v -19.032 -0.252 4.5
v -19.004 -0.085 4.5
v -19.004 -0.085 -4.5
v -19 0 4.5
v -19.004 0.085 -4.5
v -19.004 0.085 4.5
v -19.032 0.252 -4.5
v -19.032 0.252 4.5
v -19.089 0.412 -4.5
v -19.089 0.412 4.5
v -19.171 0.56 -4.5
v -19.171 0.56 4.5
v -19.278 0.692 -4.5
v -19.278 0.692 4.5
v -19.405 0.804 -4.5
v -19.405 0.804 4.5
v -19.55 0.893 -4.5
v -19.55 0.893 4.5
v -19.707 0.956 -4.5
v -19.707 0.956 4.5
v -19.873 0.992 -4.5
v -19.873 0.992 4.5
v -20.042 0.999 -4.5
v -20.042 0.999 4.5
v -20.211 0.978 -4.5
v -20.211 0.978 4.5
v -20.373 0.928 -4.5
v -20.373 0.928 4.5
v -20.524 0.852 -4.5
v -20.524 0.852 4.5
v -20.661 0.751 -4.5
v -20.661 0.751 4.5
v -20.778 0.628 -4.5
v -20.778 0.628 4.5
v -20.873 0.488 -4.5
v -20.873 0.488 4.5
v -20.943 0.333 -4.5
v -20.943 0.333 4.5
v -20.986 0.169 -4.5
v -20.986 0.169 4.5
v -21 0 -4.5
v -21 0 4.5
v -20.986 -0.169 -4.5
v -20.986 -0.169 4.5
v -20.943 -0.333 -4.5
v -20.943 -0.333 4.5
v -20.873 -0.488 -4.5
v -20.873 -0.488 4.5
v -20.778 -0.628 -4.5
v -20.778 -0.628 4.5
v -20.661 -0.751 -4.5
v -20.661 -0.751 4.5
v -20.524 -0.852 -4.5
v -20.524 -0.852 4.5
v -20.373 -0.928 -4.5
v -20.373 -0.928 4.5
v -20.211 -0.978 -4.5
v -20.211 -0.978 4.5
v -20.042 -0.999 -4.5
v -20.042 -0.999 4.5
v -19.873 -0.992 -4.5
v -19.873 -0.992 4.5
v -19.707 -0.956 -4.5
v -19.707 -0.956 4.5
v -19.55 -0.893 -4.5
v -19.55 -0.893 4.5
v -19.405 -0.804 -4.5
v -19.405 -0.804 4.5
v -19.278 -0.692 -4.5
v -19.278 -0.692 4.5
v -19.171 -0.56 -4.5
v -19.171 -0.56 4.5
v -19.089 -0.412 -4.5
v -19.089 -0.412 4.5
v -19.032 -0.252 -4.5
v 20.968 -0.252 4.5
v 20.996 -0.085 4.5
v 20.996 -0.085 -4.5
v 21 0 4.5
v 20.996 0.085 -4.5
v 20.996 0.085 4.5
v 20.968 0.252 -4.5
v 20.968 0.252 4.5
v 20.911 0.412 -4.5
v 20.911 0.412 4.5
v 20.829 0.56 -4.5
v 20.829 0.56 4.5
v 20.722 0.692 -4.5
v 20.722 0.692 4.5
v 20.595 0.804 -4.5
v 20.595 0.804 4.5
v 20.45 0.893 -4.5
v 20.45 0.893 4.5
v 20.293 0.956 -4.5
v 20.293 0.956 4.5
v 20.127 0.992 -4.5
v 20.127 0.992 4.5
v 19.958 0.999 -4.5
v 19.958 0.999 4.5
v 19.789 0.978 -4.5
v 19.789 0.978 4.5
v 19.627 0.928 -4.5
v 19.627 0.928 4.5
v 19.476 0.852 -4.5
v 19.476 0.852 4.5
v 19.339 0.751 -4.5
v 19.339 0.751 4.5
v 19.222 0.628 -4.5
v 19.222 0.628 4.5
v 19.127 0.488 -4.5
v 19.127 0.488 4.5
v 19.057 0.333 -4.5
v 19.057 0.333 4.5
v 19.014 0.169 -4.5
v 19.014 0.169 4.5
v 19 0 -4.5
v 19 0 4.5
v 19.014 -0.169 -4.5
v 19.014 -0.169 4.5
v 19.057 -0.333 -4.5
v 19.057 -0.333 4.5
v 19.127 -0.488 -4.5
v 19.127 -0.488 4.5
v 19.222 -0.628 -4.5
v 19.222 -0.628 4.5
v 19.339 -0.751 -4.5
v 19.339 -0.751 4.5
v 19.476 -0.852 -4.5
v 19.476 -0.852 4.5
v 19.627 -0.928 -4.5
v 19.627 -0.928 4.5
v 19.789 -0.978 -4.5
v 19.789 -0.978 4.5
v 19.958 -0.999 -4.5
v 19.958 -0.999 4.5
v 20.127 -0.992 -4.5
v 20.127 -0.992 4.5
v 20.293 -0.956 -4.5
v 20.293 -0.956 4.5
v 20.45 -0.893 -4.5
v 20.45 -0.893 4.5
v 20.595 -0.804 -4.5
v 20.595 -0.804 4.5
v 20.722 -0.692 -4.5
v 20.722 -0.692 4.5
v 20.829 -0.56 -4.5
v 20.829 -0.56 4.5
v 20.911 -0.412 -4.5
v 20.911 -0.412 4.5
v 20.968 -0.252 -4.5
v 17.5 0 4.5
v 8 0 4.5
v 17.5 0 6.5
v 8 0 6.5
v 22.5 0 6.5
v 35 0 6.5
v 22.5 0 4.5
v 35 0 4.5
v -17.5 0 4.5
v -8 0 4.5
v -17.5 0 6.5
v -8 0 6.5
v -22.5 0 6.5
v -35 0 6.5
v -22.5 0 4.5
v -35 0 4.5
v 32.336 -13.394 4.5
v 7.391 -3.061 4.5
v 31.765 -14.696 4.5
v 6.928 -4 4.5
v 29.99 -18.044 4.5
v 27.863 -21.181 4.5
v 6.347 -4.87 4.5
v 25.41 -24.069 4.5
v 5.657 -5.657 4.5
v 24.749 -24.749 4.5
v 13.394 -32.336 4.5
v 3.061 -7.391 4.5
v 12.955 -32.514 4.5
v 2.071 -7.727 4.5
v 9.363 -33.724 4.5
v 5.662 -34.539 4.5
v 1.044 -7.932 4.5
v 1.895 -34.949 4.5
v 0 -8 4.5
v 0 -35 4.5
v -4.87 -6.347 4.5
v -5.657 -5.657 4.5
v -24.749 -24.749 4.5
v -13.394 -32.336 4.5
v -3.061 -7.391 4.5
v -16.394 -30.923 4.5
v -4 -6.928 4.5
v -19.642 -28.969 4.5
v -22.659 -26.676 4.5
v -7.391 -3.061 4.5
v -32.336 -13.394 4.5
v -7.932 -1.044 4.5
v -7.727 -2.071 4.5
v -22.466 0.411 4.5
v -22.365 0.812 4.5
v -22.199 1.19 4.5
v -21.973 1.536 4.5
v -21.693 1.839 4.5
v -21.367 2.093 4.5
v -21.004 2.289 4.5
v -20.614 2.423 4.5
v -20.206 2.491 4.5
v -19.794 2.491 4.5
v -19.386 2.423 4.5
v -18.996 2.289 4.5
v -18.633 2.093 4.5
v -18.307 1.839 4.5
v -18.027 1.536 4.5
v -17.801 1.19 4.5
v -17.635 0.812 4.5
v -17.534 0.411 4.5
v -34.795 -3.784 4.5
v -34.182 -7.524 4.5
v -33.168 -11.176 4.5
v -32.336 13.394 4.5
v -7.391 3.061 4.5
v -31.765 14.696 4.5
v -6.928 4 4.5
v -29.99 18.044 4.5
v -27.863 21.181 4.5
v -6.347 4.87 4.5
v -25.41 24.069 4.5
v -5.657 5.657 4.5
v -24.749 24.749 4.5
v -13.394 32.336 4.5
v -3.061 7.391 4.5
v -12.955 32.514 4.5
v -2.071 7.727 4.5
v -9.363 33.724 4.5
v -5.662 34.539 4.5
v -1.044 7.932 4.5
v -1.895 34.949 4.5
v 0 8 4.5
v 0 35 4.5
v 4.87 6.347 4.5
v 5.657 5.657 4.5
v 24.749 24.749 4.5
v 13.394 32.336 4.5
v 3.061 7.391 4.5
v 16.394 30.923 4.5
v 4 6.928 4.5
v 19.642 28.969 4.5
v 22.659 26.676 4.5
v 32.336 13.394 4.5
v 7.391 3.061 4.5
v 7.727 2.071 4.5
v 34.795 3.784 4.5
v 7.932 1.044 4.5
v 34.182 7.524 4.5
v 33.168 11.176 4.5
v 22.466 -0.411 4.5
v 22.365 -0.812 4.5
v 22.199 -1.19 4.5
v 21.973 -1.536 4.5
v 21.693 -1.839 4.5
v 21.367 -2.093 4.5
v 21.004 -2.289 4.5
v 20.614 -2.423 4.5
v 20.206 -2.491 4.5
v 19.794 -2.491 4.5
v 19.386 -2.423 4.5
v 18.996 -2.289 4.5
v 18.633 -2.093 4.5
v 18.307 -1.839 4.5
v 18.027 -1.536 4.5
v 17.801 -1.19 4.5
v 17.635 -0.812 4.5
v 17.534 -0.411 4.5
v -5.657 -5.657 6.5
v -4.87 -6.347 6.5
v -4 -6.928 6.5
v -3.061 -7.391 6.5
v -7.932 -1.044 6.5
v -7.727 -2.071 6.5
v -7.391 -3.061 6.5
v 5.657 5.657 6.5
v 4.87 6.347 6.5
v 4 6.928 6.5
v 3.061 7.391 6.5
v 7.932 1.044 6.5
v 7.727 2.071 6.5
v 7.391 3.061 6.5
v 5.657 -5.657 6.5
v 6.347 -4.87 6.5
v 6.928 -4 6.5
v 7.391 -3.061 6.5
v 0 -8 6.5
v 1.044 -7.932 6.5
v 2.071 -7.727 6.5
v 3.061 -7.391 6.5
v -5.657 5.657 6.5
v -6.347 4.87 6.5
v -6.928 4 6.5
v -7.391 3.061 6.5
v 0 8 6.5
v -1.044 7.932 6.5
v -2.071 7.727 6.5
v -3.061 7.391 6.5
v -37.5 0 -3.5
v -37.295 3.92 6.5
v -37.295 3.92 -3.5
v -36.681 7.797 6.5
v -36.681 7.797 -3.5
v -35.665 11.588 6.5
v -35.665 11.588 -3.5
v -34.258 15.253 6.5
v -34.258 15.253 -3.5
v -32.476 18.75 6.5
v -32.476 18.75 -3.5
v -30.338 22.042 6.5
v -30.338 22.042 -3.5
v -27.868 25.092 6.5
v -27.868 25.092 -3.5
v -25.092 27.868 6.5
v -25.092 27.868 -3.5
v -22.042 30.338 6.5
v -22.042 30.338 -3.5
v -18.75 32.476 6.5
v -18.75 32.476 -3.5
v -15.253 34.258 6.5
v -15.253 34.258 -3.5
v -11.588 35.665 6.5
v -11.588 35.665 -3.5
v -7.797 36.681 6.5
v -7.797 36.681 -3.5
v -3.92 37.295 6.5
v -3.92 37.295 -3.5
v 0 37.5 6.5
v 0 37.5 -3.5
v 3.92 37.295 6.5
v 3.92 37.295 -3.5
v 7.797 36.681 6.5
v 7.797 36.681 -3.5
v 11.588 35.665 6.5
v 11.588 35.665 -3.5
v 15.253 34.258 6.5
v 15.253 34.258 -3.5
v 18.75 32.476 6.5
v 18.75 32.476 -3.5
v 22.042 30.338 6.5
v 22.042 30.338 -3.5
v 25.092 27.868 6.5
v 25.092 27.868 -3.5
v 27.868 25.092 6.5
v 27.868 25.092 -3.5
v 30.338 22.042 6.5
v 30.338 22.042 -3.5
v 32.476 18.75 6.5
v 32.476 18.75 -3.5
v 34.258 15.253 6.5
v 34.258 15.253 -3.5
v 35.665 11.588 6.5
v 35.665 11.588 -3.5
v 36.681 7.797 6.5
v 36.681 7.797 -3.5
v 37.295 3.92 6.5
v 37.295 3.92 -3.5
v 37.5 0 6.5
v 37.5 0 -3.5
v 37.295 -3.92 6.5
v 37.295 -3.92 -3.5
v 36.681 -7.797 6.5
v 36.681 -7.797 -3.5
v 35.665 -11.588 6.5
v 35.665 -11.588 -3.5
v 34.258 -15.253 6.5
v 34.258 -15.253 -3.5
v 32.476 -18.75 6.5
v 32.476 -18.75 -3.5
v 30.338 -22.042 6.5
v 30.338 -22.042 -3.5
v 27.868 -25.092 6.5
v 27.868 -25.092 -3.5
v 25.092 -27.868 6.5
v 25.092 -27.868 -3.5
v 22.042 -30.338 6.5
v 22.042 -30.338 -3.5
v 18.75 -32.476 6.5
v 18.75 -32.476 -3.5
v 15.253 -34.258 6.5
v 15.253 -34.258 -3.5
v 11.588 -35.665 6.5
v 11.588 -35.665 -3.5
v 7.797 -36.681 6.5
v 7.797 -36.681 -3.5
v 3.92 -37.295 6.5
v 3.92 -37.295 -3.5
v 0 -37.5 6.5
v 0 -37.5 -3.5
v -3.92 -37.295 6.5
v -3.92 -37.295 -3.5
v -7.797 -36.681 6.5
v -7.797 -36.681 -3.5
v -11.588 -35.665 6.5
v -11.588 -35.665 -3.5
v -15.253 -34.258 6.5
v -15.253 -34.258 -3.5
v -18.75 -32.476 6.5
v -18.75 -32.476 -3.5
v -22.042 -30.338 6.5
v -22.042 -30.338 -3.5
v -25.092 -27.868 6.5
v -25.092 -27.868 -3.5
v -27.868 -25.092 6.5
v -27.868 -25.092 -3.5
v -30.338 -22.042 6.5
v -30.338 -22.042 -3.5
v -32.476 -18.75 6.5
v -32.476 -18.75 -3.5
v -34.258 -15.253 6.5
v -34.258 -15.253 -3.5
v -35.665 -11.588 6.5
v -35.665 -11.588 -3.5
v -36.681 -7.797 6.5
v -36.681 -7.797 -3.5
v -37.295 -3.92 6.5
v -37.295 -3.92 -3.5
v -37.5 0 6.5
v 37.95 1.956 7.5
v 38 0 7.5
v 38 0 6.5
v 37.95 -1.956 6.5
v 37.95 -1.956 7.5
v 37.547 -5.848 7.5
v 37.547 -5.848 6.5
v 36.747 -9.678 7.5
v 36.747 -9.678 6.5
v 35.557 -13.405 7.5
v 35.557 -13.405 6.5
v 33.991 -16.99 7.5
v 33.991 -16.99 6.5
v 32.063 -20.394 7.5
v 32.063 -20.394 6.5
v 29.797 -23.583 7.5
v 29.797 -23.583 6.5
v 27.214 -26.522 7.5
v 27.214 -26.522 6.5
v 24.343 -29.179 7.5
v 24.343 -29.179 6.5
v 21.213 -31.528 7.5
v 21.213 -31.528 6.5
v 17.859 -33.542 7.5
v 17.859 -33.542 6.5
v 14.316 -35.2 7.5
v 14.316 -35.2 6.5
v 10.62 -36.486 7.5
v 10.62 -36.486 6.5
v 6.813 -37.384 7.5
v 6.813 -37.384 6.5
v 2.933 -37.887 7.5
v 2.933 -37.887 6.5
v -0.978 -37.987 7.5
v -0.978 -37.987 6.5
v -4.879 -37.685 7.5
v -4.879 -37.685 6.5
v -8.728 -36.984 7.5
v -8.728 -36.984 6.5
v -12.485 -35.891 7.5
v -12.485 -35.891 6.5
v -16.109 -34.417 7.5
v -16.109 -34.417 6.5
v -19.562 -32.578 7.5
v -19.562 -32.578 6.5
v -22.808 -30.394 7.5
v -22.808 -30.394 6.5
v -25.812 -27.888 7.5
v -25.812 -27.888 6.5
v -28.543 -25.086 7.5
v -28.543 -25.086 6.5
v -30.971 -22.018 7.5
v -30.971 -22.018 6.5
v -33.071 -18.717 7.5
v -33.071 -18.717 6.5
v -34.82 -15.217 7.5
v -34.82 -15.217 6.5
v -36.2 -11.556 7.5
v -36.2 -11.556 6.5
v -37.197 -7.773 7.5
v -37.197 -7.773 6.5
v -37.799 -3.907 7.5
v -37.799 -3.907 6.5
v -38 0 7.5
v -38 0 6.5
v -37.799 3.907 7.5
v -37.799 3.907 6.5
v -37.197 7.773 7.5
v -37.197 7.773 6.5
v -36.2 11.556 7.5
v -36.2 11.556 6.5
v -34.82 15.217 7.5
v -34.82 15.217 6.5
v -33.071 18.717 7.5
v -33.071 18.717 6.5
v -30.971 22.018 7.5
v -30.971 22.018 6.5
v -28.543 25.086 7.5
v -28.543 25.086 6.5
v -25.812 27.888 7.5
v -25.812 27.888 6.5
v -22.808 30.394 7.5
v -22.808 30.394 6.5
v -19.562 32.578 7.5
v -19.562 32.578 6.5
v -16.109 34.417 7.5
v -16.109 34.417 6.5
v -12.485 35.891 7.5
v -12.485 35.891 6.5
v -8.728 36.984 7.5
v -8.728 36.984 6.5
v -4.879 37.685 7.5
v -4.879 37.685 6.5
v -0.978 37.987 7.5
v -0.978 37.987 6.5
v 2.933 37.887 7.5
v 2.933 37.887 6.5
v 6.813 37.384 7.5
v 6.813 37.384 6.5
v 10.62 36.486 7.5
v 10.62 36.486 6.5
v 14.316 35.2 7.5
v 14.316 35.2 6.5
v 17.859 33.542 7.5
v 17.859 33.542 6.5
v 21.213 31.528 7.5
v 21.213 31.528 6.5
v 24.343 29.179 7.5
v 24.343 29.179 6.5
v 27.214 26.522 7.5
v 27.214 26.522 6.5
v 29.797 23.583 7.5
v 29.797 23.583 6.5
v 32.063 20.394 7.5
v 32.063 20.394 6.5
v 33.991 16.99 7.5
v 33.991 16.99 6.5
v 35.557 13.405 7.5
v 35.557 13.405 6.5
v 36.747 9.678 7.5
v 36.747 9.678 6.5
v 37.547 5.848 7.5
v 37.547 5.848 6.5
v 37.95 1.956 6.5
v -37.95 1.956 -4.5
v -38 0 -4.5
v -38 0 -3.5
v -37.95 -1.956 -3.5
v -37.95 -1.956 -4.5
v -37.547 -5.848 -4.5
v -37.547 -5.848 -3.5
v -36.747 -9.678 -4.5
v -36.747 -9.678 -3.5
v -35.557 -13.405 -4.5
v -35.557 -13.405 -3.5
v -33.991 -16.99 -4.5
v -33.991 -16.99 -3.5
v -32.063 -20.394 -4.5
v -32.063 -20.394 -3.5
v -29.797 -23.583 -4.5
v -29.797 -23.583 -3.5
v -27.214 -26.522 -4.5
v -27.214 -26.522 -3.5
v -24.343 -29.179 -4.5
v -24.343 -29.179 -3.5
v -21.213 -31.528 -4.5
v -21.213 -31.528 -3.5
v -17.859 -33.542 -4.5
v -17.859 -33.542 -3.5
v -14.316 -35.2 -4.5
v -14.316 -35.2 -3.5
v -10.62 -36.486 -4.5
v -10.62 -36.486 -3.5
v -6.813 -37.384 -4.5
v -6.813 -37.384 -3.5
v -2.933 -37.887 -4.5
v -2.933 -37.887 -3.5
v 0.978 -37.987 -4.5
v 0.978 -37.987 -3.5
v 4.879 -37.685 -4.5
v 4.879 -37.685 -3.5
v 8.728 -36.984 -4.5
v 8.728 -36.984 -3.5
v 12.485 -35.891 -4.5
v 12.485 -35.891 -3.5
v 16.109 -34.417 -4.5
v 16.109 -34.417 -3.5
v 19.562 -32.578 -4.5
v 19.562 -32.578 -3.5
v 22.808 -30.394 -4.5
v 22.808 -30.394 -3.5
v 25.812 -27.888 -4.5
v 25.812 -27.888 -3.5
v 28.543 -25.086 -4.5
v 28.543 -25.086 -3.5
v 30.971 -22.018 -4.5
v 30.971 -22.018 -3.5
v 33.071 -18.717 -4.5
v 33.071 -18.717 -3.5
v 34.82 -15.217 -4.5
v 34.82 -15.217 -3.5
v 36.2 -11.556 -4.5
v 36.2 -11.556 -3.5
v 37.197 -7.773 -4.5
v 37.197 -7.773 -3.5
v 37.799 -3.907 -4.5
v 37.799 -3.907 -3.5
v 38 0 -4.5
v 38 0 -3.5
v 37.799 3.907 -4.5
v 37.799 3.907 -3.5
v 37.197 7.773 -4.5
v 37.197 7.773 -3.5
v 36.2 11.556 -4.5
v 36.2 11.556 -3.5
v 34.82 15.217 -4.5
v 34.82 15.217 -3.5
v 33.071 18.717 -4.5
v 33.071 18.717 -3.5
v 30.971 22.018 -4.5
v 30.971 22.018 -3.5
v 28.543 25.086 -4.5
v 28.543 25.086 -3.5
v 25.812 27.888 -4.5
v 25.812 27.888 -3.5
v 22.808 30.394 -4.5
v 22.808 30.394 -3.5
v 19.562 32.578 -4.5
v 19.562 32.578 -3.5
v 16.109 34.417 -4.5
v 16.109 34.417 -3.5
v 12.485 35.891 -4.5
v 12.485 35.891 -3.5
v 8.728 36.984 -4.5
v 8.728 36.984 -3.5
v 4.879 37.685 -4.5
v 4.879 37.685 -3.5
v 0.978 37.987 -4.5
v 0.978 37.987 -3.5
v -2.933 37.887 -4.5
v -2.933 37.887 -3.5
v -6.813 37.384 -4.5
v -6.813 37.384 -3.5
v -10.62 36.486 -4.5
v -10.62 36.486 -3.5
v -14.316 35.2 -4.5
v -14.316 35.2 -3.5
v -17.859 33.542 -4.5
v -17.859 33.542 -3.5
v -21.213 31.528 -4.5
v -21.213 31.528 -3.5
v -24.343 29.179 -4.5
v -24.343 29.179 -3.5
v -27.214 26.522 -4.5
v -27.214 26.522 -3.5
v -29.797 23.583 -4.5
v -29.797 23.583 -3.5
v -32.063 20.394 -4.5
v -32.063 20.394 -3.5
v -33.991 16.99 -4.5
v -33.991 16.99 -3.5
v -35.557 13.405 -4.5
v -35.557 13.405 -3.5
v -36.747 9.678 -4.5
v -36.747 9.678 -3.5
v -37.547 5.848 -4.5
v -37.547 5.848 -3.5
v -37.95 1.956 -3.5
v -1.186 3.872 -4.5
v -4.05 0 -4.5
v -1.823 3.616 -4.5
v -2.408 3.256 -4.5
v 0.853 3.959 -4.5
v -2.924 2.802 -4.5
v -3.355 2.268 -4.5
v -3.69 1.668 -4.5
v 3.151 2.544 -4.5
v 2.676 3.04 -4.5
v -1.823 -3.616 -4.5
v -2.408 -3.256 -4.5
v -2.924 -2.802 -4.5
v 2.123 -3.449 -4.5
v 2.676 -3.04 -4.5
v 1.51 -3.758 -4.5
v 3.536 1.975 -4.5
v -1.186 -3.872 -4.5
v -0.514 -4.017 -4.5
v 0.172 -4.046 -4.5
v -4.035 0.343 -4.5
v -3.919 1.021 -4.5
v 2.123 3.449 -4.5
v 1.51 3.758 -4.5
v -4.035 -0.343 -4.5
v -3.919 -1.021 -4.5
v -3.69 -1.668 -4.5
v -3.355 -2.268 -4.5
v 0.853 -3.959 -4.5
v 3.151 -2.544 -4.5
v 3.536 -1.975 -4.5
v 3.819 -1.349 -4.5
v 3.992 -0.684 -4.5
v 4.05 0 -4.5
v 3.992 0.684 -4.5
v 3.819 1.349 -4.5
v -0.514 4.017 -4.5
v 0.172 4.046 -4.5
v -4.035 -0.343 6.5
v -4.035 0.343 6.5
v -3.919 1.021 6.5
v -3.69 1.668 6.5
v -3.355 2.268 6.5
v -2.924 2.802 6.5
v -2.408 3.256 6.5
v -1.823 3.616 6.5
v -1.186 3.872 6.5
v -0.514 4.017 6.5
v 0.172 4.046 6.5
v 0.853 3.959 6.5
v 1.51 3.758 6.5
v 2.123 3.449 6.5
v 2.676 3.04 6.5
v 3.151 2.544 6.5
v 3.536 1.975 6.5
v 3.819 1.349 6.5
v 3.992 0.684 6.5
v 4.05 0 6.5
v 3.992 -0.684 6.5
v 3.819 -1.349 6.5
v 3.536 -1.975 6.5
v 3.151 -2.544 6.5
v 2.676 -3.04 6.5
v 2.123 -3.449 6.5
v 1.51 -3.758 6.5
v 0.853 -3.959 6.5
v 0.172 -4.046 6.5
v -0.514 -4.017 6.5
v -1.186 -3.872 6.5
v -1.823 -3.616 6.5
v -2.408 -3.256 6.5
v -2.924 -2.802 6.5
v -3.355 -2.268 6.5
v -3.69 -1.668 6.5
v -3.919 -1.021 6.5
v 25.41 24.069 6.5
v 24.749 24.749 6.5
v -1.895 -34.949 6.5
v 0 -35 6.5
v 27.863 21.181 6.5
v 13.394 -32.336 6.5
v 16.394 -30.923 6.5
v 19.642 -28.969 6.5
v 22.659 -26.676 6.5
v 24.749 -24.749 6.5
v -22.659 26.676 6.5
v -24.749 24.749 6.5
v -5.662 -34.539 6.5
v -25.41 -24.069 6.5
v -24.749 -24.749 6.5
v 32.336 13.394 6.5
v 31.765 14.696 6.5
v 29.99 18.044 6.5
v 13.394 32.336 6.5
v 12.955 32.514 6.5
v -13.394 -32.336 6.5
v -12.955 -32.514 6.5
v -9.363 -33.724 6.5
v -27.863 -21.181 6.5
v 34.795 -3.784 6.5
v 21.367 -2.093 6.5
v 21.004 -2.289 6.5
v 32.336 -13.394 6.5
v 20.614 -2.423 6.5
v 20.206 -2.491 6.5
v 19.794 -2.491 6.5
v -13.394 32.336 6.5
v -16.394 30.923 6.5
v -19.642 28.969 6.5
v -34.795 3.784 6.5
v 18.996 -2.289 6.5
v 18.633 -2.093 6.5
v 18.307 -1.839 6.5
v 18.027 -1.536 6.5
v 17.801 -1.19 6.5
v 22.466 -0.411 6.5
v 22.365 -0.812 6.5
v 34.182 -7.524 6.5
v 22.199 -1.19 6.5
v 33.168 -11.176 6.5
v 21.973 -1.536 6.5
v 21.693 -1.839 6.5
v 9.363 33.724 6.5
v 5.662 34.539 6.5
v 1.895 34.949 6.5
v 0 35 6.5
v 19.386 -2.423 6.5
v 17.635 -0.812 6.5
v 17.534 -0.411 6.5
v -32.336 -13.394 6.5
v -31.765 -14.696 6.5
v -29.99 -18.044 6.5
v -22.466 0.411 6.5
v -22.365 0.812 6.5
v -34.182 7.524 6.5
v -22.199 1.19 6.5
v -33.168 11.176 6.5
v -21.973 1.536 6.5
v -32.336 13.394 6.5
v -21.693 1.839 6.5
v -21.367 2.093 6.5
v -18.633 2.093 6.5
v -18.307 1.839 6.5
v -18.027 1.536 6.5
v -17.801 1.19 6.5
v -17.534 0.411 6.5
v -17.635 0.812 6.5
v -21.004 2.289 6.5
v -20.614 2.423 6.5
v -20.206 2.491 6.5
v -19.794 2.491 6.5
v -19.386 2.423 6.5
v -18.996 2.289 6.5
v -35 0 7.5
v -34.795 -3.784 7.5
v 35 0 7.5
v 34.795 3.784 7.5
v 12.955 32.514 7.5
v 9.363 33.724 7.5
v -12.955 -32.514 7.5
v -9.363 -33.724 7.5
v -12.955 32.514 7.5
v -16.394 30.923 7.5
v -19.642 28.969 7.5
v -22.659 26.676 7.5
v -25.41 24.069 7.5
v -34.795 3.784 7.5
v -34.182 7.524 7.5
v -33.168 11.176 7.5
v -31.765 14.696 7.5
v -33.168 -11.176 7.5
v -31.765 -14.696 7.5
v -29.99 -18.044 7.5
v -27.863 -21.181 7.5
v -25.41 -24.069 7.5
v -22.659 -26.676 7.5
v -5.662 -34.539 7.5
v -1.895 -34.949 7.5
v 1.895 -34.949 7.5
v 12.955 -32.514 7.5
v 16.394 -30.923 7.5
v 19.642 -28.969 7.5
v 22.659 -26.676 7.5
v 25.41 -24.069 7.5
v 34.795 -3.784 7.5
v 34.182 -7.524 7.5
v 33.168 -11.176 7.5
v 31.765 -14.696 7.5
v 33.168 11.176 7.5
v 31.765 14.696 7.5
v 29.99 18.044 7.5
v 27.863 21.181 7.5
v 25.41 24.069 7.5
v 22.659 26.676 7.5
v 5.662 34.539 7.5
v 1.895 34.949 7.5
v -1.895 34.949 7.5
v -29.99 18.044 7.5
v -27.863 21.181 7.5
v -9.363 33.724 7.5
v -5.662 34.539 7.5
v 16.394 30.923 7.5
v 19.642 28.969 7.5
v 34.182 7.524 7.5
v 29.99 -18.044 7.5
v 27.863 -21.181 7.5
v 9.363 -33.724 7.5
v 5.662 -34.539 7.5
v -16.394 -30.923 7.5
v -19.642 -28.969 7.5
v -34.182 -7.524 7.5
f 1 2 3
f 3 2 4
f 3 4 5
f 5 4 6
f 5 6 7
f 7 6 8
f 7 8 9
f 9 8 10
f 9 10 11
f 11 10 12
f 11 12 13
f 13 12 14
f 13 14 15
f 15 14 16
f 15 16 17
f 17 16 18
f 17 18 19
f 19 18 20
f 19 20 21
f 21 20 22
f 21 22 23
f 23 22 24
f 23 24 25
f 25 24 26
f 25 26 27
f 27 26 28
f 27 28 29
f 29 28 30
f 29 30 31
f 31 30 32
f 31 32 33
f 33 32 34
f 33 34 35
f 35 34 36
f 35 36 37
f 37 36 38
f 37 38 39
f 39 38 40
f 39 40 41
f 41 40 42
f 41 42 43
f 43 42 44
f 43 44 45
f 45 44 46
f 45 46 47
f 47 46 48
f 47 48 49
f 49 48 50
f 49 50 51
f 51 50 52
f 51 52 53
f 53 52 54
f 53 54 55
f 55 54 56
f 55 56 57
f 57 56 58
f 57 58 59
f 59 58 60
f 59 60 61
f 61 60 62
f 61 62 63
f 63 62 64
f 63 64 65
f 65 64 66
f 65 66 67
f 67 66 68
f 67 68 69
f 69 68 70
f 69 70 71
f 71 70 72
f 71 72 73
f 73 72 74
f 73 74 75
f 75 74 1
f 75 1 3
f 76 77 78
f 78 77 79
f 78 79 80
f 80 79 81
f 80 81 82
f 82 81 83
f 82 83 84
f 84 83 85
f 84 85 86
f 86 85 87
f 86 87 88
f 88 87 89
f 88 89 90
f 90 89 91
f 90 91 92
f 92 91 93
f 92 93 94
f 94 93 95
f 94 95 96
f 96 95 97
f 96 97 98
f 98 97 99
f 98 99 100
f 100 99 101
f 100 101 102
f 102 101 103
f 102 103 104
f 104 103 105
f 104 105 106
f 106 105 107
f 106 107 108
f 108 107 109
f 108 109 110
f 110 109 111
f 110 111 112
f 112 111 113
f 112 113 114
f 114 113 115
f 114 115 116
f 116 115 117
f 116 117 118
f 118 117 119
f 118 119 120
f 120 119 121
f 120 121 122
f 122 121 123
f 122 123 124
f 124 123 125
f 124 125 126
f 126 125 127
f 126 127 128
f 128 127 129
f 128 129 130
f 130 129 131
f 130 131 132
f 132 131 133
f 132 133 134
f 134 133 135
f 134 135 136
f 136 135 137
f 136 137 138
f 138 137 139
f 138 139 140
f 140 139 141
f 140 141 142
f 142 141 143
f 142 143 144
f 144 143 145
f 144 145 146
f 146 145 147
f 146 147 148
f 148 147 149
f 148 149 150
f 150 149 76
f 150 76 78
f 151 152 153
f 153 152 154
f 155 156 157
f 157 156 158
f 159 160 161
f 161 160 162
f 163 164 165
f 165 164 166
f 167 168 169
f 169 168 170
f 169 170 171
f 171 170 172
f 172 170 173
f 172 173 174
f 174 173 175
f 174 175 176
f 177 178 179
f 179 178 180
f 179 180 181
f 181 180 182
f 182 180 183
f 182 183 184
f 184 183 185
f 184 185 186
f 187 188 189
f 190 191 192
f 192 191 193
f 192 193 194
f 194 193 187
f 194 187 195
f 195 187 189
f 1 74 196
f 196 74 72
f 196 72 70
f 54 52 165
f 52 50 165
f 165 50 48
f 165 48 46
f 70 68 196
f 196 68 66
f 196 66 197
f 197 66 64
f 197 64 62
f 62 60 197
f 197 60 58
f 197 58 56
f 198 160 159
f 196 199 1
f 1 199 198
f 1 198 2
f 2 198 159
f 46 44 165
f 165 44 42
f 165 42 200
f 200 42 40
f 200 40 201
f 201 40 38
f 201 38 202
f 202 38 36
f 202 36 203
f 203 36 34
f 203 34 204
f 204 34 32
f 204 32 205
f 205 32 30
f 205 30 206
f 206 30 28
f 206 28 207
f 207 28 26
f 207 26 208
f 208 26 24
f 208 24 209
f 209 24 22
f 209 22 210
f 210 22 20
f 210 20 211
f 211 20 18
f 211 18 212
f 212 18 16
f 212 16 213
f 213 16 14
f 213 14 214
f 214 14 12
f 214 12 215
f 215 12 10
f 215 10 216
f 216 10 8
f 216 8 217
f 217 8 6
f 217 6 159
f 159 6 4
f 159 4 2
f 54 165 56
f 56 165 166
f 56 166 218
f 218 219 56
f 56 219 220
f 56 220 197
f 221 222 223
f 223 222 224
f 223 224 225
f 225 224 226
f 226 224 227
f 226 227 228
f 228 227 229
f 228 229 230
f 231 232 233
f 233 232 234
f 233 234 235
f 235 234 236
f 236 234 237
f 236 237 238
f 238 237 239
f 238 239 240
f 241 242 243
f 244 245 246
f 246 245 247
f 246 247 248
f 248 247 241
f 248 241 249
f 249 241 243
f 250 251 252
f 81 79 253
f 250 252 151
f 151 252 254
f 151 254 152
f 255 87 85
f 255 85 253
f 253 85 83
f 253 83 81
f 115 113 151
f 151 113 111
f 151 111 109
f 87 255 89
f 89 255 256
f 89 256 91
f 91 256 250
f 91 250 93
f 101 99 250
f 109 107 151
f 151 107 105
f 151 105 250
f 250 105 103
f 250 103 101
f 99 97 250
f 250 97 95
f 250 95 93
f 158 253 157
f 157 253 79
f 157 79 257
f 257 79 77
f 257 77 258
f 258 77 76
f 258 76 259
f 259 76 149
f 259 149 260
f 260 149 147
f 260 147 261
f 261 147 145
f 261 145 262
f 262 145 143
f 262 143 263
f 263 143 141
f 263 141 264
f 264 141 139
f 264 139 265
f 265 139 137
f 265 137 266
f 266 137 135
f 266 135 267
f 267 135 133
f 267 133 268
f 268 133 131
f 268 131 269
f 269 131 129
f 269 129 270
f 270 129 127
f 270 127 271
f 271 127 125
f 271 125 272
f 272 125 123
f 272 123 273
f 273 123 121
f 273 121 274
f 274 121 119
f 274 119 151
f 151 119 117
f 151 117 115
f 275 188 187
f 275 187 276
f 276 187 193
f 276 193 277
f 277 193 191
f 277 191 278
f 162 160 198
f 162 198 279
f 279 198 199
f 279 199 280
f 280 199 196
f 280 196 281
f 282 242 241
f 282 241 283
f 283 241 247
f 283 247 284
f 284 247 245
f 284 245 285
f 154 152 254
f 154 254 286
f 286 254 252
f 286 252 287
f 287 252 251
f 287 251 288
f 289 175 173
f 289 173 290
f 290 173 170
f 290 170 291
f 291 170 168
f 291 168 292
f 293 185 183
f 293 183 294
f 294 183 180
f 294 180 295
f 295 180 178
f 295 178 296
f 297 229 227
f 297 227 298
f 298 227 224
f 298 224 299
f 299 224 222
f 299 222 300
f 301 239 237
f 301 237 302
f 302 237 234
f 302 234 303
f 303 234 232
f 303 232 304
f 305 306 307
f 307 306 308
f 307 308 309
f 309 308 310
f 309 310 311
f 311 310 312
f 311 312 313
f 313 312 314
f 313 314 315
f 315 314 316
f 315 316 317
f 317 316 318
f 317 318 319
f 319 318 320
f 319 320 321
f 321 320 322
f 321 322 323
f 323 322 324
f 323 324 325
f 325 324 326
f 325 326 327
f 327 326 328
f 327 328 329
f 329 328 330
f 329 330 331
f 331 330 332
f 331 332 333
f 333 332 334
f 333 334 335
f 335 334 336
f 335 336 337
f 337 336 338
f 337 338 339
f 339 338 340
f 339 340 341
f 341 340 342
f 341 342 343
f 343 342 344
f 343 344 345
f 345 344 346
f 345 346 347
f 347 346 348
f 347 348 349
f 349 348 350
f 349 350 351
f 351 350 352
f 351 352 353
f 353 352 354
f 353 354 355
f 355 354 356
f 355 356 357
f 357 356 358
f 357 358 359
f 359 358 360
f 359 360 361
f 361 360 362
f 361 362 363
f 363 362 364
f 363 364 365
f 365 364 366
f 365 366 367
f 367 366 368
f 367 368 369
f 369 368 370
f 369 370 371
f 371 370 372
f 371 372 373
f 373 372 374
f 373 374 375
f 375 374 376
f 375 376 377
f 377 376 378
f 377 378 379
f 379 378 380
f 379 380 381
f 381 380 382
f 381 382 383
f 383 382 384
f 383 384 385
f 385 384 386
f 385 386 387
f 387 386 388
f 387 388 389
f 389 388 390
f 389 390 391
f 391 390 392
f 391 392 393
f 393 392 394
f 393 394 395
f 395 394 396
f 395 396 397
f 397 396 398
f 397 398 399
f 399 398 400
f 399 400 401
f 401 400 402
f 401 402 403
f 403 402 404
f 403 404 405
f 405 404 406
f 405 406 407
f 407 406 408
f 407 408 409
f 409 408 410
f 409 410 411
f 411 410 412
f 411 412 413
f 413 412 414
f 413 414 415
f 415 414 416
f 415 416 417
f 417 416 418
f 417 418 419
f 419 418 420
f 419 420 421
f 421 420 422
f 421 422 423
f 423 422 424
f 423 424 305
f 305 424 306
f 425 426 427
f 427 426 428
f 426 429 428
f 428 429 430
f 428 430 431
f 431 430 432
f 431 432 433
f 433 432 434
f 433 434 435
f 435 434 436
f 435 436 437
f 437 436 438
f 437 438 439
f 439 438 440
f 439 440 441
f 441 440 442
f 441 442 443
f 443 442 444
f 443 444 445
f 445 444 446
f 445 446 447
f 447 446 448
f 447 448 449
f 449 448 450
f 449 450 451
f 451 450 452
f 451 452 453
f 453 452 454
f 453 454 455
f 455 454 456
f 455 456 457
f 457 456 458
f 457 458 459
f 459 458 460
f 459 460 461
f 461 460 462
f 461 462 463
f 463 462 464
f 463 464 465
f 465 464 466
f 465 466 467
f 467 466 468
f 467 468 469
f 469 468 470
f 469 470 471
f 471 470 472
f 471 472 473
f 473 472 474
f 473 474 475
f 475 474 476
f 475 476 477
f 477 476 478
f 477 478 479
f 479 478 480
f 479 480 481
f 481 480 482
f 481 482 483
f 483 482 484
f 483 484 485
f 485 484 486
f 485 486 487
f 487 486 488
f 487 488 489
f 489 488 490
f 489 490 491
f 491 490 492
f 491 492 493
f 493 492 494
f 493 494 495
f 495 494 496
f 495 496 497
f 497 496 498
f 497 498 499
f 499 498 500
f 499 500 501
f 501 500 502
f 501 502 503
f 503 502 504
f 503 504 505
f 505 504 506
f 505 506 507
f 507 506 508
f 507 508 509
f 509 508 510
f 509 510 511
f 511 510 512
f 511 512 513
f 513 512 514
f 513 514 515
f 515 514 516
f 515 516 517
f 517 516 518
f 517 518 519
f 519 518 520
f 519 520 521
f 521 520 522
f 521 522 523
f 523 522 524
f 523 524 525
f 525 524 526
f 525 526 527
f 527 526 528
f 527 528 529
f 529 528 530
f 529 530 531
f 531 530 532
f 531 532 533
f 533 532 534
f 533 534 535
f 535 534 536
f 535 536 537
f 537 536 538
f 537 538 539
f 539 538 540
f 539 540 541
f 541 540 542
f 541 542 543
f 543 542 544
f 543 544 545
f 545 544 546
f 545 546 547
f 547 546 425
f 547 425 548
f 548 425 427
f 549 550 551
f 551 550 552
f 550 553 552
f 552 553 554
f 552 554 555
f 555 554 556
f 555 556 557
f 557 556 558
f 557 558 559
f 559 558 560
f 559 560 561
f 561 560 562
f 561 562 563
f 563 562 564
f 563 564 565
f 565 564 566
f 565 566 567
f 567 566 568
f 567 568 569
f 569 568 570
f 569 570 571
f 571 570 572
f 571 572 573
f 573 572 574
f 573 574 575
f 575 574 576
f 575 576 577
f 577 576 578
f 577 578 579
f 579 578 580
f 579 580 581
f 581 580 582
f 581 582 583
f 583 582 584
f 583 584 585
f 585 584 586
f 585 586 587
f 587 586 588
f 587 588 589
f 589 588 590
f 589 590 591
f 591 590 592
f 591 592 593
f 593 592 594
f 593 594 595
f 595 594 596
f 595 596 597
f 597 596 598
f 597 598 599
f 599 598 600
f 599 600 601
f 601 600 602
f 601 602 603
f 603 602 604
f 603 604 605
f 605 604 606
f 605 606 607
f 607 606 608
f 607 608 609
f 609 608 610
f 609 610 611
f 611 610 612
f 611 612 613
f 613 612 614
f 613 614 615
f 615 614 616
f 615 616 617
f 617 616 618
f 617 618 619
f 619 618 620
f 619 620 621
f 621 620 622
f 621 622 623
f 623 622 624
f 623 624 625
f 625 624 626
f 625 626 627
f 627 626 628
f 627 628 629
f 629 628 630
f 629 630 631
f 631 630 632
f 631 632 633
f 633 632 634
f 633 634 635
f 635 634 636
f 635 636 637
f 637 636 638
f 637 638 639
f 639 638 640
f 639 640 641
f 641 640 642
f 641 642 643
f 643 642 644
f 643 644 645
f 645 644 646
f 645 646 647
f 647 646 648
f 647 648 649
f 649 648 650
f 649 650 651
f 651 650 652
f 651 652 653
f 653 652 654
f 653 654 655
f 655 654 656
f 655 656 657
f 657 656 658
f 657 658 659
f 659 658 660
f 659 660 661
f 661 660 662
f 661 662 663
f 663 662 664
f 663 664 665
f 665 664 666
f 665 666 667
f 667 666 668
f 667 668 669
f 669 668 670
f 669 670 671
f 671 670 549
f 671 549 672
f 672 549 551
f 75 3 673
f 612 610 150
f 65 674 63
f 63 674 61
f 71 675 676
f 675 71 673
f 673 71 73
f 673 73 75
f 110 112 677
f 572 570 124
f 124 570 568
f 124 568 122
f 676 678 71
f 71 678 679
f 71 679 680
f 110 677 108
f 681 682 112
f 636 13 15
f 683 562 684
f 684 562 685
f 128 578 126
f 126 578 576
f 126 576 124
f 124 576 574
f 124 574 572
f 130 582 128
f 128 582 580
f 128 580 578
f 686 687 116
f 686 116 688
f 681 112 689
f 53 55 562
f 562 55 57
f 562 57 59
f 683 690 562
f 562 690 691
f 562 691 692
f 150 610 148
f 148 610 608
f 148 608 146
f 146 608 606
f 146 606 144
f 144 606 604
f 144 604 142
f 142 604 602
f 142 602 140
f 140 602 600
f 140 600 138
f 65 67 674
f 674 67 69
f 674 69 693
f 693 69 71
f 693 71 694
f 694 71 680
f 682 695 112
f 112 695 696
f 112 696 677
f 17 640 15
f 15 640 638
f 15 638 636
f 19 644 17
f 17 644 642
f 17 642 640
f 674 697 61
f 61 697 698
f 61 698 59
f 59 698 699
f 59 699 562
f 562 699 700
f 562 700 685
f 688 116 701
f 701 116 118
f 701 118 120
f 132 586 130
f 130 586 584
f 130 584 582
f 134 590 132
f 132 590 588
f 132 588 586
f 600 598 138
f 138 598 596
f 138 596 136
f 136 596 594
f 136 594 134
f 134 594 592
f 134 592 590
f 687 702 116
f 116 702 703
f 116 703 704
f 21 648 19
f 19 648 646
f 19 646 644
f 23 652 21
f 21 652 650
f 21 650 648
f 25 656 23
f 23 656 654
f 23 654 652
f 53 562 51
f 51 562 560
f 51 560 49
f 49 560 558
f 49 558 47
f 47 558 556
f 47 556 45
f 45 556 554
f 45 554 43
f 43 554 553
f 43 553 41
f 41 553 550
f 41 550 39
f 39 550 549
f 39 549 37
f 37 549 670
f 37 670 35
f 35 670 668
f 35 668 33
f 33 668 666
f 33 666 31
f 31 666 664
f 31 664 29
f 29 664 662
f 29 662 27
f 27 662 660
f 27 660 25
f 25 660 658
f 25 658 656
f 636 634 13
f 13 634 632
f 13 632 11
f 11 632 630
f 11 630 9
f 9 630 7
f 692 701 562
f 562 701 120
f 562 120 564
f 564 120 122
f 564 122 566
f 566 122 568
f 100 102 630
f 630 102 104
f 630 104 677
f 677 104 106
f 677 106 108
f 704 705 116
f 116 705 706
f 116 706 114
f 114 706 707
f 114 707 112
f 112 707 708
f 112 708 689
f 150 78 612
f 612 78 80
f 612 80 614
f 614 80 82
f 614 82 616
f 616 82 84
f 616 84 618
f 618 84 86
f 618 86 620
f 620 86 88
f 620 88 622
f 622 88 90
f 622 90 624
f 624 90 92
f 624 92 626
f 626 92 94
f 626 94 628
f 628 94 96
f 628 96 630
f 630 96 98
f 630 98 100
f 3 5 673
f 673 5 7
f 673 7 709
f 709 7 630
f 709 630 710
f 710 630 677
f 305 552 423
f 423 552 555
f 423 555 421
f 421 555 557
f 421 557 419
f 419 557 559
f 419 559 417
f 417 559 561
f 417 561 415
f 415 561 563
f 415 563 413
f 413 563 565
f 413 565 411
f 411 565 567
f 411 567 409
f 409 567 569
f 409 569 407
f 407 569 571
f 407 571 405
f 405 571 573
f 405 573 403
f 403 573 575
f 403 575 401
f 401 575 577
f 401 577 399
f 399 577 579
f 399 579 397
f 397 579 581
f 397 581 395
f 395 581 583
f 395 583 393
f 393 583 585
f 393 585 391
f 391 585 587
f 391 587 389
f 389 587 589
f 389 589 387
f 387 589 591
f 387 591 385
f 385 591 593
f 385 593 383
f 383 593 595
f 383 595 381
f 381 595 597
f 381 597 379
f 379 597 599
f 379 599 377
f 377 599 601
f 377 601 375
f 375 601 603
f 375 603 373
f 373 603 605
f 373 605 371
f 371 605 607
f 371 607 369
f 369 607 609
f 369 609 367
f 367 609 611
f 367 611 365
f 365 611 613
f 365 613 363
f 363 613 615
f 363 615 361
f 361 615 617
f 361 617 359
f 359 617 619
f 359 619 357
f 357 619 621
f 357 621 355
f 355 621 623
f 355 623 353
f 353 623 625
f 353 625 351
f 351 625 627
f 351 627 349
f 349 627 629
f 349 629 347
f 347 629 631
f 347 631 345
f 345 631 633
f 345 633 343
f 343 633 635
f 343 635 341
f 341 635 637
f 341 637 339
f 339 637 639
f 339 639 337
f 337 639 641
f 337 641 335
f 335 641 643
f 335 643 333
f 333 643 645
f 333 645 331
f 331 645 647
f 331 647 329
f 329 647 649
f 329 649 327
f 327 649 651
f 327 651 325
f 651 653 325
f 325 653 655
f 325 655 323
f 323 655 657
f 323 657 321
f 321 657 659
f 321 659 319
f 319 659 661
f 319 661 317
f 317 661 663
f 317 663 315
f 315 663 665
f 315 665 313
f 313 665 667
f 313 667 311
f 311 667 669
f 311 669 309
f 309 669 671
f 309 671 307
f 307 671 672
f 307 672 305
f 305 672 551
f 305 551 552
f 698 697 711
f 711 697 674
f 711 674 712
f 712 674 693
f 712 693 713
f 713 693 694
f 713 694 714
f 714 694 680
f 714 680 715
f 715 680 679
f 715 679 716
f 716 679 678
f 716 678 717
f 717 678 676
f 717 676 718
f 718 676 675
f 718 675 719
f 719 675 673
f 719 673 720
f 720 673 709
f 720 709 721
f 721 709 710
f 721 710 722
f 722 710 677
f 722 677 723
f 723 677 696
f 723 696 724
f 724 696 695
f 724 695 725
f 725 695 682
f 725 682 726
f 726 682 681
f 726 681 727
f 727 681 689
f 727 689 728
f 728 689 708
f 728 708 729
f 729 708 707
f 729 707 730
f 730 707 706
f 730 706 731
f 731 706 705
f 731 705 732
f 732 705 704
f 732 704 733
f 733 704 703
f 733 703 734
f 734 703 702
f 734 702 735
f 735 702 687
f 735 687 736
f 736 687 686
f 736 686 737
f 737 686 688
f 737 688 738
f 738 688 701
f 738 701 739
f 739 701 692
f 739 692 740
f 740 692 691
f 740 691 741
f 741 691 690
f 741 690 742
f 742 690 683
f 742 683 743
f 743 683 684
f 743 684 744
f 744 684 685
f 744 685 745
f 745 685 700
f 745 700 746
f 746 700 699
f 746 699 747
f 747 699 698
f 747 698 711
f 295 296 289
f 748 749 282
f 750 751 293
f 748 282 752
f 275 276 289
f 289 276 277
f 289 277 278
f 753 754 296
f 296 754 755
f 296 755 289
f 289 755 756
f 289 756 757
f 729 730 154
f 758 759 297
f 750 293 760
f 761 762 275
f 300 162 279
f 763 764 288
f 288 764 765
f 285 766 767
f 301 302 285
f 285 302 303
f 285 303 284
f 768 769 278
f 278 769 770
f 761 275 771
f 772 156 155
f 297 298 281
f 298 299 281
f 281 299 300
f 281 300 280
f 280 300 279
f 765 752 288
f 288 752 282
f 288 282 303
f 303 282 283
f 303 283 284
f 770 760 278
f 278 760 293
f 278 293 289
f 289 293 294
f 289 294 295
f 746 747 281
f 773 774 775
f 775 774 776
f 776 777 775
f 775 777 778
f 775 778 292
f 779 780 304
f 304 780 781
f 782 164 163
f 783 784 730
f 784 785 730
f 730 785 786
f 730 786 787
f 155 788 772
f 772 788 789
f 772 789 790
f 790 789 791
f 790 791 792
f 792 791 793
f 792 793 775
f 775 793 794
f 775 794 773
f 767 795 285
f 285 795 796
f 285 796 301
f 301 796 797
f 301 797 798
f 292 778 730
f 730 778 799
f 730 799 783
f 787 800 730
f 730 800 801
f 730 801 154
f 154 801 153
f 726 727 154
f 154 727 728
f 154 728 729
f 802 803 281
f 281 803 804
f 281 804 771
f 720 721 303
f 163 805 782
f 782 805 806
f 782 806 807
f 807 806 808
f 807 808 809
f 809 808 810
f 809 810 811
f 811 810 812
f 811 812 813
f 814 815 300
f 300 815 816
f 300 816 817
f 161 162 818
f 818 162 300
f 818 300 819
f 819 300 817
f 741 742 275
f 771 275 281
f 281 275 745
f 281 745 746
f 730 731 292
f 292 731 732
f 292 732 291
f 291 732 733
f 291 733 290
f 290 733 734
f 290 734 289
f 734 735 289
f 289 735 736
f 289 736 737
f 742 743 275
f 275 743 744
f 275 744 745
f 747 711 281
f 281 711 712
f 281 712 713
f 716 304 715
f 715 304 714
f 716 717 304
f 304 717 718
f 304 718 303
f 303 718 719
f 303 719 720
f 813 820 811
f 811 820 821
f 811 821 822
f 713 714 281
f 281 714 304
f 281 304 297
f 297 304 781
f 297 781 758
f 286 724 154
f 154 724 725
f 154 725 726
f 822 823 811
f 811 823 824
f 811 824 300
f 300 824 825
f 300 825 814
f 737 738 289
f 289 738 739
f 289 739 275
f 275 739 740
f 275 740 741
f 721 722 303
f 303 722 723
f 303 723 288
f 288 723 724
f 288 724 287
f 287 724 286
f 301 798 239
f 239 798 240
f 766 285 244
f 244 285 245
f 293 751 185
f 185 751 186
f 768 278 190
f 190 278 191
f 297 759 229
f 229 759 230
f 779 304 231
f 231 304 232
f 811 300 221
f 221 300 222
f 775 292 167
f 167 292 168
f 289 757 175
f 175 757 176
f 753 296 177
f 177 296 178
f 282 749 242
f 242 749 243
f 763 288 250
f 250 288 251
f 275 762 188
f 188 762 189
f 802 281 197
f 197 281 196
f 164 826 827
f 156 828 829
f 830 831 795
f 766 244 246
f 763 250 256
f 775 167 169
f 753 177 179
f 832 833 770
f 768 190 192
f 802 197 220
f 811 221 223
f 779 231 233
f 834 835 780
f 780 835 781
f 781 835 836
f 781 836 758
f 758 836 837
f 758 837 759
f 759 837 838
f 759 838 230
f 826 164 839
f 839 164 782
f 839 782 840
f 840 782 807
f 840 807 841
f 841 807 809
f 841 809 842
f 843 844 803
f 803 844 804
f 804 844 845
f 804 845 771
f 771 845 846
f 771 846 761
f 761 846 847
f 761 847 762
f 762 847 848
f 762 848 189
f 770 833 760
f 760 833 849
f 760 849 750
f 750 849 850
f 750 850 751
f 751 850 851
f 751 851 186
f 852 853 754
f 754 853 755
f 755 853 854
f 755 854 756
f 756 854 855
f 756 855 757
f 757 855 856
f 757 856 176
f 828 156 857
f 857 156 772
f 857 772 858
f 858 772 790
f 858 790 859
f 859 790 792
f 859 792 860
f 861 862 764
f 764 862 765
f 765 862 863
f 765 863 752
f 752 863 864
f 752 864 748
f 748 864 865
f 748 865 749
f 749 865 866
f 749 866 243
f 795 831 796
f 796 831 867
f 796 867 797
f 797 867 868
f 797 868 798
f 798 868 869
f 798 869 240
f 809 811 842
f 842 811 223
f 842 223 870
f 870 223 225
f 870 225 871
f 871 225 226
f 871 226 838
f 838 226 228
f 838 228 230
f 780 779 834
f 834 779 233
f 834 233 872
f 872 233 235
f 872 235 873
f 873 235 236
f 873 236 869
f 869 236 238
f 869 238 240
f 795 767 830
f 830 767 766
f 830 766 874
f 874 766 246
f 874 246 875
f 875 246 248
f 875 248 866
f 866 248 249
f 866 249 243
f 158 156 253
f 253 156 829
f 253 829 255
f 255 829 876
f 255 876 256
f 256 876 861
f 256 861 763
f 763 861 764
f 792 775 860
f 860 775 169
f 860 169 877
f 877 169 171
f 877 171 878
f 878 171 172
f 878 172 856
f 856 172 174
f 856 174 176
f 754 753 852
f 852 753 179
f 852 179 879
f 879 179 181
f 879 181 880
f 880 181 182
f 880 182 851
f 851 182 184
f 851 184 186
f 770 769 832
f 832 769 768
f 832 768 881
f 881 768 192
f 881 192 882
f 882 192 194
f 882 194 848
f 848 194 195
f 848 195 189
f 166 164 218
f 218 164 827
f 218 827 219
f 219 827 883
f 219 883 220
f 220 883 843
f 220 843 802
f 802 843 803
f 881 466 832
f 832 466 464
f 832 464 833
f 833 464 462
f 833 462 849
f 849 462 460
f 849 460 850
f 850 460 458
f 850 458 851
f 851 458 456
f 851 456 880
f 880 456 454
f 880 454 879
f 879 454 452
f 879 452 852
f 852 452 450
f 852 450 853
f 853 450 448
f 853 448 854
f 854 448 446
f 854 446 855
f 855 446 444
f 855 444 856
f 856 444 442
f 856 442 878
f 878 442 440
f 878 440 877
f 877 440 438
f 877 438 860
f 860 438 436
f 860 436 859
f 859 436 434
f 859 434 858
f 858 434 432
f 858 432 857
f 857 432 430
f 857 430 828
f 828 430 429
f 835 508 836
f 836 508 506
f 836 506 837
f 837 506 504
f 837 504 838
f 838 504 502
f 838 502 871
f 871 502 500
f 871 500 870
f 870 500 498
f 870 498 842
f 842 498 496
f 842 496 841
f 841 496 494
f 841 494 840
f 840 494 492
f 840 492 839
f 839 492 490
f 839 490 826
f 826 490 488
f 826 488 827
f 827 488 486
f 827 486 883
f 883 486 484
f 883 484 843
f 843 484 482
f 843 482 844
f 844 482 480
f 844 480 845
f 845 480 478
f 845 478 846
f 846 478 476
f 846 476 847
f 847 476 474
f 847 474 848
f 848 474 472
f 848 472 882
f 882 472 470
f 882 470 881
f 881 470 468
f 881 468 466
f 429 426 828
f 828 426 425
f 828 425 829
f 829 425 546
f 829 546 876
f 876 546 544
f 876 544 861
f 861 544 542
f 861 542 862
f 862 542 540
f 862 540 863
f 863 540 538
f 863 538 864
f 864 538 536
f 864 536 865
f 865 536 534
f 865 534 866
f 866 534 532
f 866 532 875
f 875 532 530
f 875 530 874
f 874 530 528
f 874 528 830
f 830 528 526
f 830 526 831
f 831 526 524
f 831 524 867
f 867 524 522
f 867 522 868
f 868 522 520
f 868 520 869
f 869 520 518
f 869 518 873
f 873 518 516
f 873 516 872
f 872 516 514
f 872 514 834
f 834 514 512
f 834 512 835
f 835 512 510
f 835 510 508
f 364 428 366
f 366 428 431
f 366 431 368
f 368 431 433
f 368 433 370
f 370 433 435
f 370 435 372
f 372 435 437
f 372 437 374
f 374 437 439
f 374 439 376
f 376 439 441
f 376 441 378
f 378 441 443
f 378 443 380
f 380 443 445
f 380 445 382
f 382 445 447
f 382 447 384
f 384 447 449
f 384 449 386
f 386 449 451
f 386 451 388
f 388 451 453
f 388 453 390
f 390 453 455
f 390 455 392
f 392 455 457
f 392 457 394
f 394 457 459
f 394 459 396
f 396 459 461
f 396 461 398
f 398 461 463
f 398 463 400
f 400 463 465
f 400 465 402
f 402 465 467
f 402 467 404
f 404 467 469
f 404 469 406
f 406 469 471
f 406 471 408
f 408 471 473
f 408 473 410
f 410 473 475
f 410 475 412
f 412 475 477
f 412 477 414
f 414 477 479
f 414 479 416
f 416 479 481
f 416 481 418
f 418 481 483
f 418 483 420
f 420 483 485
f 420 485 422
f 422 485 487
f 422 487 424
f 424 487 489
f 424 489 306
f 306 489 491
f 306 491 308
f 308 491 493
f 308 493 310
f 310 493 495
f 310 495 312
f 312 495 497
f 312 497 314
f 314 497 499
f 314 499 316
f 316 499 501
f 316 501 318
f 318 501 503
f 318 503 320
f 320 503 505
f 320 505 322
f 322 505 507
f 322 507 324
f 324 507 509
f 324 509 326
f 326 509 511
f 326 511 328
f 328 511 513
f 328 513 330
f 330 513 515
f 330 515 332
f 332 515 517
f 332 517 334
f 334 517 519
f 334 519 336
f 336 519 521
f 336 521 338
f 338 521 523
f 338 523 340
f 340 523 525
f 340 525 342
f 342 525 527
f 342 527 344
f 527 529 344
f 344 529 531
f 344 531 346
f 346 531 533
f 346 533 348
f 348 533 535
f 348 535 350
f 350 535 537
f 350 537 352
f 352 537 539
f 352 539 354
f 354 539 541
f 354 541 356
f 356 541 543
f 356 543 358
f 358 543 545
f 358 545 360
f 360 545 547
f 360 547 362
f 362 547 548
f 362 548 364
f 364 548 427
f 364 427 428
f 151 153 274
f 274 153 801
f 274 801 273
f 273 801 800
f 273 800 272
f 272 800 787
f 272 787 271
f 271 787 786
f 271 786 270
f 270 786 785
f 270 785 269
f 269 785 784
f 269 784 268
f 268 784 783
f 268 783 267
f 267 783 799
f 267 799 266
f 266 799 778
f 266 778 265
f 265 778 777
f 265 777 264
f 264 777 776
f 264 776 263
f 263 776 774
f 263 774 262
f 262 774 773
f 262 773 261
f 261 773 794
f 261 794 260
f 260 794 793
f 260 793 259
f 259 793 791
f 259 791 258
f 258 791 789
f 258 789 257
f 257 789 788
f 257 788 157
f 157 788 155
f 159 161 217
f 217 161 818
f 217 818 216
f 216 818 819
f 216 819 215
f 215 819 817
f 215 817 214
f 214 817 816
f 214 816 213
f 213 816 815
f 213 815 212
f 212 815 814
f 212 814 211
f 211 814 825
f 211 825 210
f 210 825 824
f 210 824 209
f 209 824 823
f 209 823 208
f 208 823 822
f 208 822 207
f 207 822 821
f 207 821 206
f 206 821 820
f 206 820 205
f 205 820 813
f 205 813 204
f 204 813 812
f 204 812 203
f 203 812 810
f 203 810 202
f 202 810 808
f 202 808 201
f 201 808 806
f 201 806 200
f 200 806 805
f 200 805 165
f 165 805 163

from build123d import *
from build123d.topology import SkipClean

# Parameters (mm, degrees)
CROQUIS1_R                 = 37.5
SALIENTE_EXTRUIR1_DEPTH    = 3.5
CROQUIS3_R                 = 38
SALIENTE_EXTRUIR2_DEPTH    = 1
SALIENTE_EXTRUIR4_START    = 1
CROQUIS5_R                 = 38
SALIENTE_EXTRUIR4_DEPTH    = 1
CROQUIS6_R                 = 4.05
CORTAR_EXTRUIR1_DEPTH      = 31
SALIENTE_EXTRUIR5_START    = 2
CROQUIS7_R                 = 8
CROQUIS7_R_2               = 4.05
SALIENTE_EXTRUIR5_DEPTH    = 2
SALIENTE_EXTRUIR7_START    = 2
SALIENTE_EXTRUIR7_DEPTH    = 2
SALIENTE_EXTRUIR8_START    = 3
CROQUIS10_R                = 38
CROQUIS10_R_2              = 35
SALIENTE_EXTRUIR8_DEPTH    = 3
CORTAR_EXTRUIR2_DEPTH      = 21
CORTAR_EXTRUIR2_DEPTH_BACK = 48
CROQUIS11_R                = 1
CROQUIS15_OUTSIDE_W        = 99.63
CROQUIS15_OUTSIDE_H        = 99.63
CROQUIS15_OUTSIDE_R        = 37.5
CORTAR_EXTRUIR6_DEPTH      = 10
CORTAR_EXTRUIR10_DEPTH     = 2


with BuildPart() as part:
    # Croquis1 → Saliente-Extruir1 (new, symmetric)
    with BuildSketch(Plane.XY):
        Circle(CROQUIS1_R)
    extrude(amount=SALIENTE_EXTRUIR1_DEPTH, both=True)

    # Croquis3 → Saliente-Extruir2 (add)
    with BuildSketch(Plane.XY.offset(3.5)):
        Circle(CROQUIS3_R)
    extrude(amount=SALIENTE_EXTRUIR2_DEPTH)

    # Croquis5 → Saliente-Extruir4 (add)
    with BuildSketch(Plane(origin=(0, 0, -3.5), x_dir=(-1, 0, 0), z_dir=(0, 0, -1)).offset(SALIENTE_EXTRUIR4_START)):
        with Locations(Location((0, 0, 0), (0, 0, 180))):
            Circle(CROQUIS5_R)
    extrude(amount=-SALIENTE_EXTRUIR4_DEPTH)

    # Croquis6 → Cortar-Extruir1 (cut)
    with BuildSketch(Plane.XY.offset(4.5)):
        Circle(CROQUIS6_R)
    extrude(amount=-CORTAR_EXTRUIR1_DEPTH, mode=Mode.SUBTRACT)

    # Croquis7 → Saliente-Extruir5 (add)
    with BuildSketch(Plane.XY.offset(4.5).offset(SALIENTE_EXTRUIR5_START)):
        Circle(CROQUIS7_R)
        Circle(CROQUIS7_R_2, mode=Mode.SUBTRACT)
    extrude(amount=-SALIENTE_EXTRUIR5_DEPTH)

    # Croquis9 → Saliente-Extruir7 (add)
    with BuildSketch(Plane.XY.offset(4.5).offset(SALIENTE_EXTRUIR7_START)):
        with BuildLine():
            Line((0, 35), (0, 8))
            ThreePointArc((0, 8), (1.560722576, 7.846282243), (3.061467459, 7.39103626))
            Line((3.061467459, 7.39103626), (13.393920133, 32.335783638))
            ThreePointArc((13.393920133, 32.335783638), (6.828161271, 34.327484814), (0, 35))
        make_face()
        with BuildLine():
            Line((-35, 0), (-8, 0))
            ThreePointArc((-8, 0), (-7.846282243, 1.560722576), (-7.39103626, 3.061467459))
            Line((-7.39103626, 3.061467459), (-32.335783638, 13.393920133))
            ThreePointArc((-32.335783638, 13.393920133), (-34.327484814, 6.828161271), (-35, 0))
        make_face()
        with BuildLine():
            Line((-24.748737342, 24.748737342), (-5.656854249, 5.656854249))
            ThreePointArc((-5.656854249, 5.656854249), (-4.444561864, 6.651756898), (-3.061467459, 7.39103626))
            Line((-3.061467459, 7.39103626), (-13.393920133, 32.335783638))
            ThreePointArc((-13.393920133, 32.335783638), (-19.444958156, 29.101436431), (-24.748737342, 24.748737342))
        make_face()
        with BuildLine():
            Line((24.748737342, 24.748737342), (5.656854249, 5.656854249))
            ThreePointArc((5.656854249, 5.656854249), (6.651756898, 4.444561864), (7.39103626, 3.061467459))
            Line((7.39103626, 3.061467459), (32.335783638, 13.393920133))
            ThreePointArc((32.335783638, 13.393920133), (29.101436431, 19.444958156), (24.748737342, 24.748737342))
        make_face()
        with BuildLine():
            Line((-5.656854249, -5.656854249), (-24.748737342, -24.748737342))
            ThreePointArc((-24.748737342, -24.748737342), (-29.101436431, -19.444958156), (-32.335783638, -13.393920133))
            Line((-32.335783638, -13.393920133), (-7.39103626, -3.061467459))
            ThreePointArc((-7.39103626, -3.061467459), (-6.651756898, -4.444561864), (-5.656854249, -5.656854249))
        make_face()
        with BuildLine():
            Line((8, 0), (35, 0))
            ThreePointArc((35, 0), (34.327484814, -6.828161271), (32.335783638, -13.393920133))
            Line((32.335783638, -13.393920133), (7.39103626, -3.061467459))
            ThreePointArc((7.39103626, -3.061467459), (7.846282243, -1.560722576), (8, 0))
        make_face()
        with BuildLine():
            Line((0, -8), (0, -35))
            ThreePointArc((0, -35), (-6.828161271, -34.327484814), (-13.393920133, -32.335783638))
            Line((-13.393920133, -32.335783638), (-3.061467459, -7.39103626))
            ThreePointArc((-3.061467459, -7.39103626), (-1.560722576, -7.846282243), (0, -8))
        make_face()
        with BuildLine():
            Line((3.061467459, -7.39103626), (13.393920133, -32.335783638))
            ThreePointArc((13.393920133, -32.335783638), (19.444958156, -29.101436431), (24.748737342, -24.748737342))
            Line((24.748737342, -24.748737342), (5.656854249, -5.656854249))
            ThreePointArc((5.656854249, -5.656854249), (4.444561864, -6.651756898), (3.061467459, -7.39103626))
        make_face()
    extrude(amount=-SALIENTE_EXTRUIR7_DEPTH)

    # Croquis10 → Saliente-Extruir8 (add)
    with BuildSketch(Plane.XY.offset(4.5).offset(SALIENTE_EXTRUIR8_START)):
        Circle(CROQUIS10_R)
        Circle(CROQUIS10_R_2, mode=Mode.SUBTRACT)
    extrude(amount=-SALIENTE_EXTRUIR8_DEPTH)

    # Croquis11 → Cortar-Extruir2 (cut, two sides: drawn at the far end of the back side and taken through both)
    with BuildSketch(Plane.XY.offset(6.5).offset(-CORTAR_EXTRUIR2_DEPTH_BACK)):
        with Locations(Location((-20, 0, 0), (0, 0, 180))):
            Circle(CROQUIS11_R)
        with Locations(Location((20, 0, 0), (0, 0, 180))):
            Circle(CROQUIS11_R)
    extrude(amount=CORTAR_EXTRUIR2_DEPTH + CORTAR_EXTRUIR2_DEPTH_BACK, mode=Mode.SUBTRACT)

    # Croquis15 outside → Cortar-Extruir6 (cut)
    with SkipClean():  # the faces are left unmerged after this step: merging them gives an invalid solid
        with BuildSketch(Plane.XY.offset(-3.5)):
            Rectangle(CROQUIS15_OUTSIDE_W, CROQUIS15_OUTSIDE_H)
            with Locations(Location((0, 0, 0), (0, 0, 180))):
                Circle(CROQUIS15_OUTSIDE_R, mode=Mode.SUBTRACT)
        extrude(amount=CORTAR_EXTRUIR6_DEPTH, mode=Mode.SUBTRACT)

    # Croquis17 → Cortar-Extruir10 (cut)
    with SkipClean():  # the faces are left unmerged after this step: merging them gives an invalid solid
        with BuildSketch(Plane.XY.offset(6.5)):
            with BuildLine():
                Line((22.5, 0), (21, 0))
                ThreePointArc((21, 0), (20, -1), (19, 0))
                Line((19, 0), (17.5, 0))
                ThreePointArc((17.5, 0), (20, -2.5), (22.5, 0))
            make_face()
            with BuildLine():
                Line((-21, 0), (-22.5, 0))
                ThreePointArc((-22.5, 0), (-20, 2.5), (-17.5, 0))
                Line((-17.5, 0), (-19, 0))
                ThreePointArc((-19, 0), (-20, 1), (-21, 0))
            make_face()
        extrude(amount=-CORTAR_EXTRUIR10_DEPTH, mode=Mode.SUBTRACT)


solid = part.part
